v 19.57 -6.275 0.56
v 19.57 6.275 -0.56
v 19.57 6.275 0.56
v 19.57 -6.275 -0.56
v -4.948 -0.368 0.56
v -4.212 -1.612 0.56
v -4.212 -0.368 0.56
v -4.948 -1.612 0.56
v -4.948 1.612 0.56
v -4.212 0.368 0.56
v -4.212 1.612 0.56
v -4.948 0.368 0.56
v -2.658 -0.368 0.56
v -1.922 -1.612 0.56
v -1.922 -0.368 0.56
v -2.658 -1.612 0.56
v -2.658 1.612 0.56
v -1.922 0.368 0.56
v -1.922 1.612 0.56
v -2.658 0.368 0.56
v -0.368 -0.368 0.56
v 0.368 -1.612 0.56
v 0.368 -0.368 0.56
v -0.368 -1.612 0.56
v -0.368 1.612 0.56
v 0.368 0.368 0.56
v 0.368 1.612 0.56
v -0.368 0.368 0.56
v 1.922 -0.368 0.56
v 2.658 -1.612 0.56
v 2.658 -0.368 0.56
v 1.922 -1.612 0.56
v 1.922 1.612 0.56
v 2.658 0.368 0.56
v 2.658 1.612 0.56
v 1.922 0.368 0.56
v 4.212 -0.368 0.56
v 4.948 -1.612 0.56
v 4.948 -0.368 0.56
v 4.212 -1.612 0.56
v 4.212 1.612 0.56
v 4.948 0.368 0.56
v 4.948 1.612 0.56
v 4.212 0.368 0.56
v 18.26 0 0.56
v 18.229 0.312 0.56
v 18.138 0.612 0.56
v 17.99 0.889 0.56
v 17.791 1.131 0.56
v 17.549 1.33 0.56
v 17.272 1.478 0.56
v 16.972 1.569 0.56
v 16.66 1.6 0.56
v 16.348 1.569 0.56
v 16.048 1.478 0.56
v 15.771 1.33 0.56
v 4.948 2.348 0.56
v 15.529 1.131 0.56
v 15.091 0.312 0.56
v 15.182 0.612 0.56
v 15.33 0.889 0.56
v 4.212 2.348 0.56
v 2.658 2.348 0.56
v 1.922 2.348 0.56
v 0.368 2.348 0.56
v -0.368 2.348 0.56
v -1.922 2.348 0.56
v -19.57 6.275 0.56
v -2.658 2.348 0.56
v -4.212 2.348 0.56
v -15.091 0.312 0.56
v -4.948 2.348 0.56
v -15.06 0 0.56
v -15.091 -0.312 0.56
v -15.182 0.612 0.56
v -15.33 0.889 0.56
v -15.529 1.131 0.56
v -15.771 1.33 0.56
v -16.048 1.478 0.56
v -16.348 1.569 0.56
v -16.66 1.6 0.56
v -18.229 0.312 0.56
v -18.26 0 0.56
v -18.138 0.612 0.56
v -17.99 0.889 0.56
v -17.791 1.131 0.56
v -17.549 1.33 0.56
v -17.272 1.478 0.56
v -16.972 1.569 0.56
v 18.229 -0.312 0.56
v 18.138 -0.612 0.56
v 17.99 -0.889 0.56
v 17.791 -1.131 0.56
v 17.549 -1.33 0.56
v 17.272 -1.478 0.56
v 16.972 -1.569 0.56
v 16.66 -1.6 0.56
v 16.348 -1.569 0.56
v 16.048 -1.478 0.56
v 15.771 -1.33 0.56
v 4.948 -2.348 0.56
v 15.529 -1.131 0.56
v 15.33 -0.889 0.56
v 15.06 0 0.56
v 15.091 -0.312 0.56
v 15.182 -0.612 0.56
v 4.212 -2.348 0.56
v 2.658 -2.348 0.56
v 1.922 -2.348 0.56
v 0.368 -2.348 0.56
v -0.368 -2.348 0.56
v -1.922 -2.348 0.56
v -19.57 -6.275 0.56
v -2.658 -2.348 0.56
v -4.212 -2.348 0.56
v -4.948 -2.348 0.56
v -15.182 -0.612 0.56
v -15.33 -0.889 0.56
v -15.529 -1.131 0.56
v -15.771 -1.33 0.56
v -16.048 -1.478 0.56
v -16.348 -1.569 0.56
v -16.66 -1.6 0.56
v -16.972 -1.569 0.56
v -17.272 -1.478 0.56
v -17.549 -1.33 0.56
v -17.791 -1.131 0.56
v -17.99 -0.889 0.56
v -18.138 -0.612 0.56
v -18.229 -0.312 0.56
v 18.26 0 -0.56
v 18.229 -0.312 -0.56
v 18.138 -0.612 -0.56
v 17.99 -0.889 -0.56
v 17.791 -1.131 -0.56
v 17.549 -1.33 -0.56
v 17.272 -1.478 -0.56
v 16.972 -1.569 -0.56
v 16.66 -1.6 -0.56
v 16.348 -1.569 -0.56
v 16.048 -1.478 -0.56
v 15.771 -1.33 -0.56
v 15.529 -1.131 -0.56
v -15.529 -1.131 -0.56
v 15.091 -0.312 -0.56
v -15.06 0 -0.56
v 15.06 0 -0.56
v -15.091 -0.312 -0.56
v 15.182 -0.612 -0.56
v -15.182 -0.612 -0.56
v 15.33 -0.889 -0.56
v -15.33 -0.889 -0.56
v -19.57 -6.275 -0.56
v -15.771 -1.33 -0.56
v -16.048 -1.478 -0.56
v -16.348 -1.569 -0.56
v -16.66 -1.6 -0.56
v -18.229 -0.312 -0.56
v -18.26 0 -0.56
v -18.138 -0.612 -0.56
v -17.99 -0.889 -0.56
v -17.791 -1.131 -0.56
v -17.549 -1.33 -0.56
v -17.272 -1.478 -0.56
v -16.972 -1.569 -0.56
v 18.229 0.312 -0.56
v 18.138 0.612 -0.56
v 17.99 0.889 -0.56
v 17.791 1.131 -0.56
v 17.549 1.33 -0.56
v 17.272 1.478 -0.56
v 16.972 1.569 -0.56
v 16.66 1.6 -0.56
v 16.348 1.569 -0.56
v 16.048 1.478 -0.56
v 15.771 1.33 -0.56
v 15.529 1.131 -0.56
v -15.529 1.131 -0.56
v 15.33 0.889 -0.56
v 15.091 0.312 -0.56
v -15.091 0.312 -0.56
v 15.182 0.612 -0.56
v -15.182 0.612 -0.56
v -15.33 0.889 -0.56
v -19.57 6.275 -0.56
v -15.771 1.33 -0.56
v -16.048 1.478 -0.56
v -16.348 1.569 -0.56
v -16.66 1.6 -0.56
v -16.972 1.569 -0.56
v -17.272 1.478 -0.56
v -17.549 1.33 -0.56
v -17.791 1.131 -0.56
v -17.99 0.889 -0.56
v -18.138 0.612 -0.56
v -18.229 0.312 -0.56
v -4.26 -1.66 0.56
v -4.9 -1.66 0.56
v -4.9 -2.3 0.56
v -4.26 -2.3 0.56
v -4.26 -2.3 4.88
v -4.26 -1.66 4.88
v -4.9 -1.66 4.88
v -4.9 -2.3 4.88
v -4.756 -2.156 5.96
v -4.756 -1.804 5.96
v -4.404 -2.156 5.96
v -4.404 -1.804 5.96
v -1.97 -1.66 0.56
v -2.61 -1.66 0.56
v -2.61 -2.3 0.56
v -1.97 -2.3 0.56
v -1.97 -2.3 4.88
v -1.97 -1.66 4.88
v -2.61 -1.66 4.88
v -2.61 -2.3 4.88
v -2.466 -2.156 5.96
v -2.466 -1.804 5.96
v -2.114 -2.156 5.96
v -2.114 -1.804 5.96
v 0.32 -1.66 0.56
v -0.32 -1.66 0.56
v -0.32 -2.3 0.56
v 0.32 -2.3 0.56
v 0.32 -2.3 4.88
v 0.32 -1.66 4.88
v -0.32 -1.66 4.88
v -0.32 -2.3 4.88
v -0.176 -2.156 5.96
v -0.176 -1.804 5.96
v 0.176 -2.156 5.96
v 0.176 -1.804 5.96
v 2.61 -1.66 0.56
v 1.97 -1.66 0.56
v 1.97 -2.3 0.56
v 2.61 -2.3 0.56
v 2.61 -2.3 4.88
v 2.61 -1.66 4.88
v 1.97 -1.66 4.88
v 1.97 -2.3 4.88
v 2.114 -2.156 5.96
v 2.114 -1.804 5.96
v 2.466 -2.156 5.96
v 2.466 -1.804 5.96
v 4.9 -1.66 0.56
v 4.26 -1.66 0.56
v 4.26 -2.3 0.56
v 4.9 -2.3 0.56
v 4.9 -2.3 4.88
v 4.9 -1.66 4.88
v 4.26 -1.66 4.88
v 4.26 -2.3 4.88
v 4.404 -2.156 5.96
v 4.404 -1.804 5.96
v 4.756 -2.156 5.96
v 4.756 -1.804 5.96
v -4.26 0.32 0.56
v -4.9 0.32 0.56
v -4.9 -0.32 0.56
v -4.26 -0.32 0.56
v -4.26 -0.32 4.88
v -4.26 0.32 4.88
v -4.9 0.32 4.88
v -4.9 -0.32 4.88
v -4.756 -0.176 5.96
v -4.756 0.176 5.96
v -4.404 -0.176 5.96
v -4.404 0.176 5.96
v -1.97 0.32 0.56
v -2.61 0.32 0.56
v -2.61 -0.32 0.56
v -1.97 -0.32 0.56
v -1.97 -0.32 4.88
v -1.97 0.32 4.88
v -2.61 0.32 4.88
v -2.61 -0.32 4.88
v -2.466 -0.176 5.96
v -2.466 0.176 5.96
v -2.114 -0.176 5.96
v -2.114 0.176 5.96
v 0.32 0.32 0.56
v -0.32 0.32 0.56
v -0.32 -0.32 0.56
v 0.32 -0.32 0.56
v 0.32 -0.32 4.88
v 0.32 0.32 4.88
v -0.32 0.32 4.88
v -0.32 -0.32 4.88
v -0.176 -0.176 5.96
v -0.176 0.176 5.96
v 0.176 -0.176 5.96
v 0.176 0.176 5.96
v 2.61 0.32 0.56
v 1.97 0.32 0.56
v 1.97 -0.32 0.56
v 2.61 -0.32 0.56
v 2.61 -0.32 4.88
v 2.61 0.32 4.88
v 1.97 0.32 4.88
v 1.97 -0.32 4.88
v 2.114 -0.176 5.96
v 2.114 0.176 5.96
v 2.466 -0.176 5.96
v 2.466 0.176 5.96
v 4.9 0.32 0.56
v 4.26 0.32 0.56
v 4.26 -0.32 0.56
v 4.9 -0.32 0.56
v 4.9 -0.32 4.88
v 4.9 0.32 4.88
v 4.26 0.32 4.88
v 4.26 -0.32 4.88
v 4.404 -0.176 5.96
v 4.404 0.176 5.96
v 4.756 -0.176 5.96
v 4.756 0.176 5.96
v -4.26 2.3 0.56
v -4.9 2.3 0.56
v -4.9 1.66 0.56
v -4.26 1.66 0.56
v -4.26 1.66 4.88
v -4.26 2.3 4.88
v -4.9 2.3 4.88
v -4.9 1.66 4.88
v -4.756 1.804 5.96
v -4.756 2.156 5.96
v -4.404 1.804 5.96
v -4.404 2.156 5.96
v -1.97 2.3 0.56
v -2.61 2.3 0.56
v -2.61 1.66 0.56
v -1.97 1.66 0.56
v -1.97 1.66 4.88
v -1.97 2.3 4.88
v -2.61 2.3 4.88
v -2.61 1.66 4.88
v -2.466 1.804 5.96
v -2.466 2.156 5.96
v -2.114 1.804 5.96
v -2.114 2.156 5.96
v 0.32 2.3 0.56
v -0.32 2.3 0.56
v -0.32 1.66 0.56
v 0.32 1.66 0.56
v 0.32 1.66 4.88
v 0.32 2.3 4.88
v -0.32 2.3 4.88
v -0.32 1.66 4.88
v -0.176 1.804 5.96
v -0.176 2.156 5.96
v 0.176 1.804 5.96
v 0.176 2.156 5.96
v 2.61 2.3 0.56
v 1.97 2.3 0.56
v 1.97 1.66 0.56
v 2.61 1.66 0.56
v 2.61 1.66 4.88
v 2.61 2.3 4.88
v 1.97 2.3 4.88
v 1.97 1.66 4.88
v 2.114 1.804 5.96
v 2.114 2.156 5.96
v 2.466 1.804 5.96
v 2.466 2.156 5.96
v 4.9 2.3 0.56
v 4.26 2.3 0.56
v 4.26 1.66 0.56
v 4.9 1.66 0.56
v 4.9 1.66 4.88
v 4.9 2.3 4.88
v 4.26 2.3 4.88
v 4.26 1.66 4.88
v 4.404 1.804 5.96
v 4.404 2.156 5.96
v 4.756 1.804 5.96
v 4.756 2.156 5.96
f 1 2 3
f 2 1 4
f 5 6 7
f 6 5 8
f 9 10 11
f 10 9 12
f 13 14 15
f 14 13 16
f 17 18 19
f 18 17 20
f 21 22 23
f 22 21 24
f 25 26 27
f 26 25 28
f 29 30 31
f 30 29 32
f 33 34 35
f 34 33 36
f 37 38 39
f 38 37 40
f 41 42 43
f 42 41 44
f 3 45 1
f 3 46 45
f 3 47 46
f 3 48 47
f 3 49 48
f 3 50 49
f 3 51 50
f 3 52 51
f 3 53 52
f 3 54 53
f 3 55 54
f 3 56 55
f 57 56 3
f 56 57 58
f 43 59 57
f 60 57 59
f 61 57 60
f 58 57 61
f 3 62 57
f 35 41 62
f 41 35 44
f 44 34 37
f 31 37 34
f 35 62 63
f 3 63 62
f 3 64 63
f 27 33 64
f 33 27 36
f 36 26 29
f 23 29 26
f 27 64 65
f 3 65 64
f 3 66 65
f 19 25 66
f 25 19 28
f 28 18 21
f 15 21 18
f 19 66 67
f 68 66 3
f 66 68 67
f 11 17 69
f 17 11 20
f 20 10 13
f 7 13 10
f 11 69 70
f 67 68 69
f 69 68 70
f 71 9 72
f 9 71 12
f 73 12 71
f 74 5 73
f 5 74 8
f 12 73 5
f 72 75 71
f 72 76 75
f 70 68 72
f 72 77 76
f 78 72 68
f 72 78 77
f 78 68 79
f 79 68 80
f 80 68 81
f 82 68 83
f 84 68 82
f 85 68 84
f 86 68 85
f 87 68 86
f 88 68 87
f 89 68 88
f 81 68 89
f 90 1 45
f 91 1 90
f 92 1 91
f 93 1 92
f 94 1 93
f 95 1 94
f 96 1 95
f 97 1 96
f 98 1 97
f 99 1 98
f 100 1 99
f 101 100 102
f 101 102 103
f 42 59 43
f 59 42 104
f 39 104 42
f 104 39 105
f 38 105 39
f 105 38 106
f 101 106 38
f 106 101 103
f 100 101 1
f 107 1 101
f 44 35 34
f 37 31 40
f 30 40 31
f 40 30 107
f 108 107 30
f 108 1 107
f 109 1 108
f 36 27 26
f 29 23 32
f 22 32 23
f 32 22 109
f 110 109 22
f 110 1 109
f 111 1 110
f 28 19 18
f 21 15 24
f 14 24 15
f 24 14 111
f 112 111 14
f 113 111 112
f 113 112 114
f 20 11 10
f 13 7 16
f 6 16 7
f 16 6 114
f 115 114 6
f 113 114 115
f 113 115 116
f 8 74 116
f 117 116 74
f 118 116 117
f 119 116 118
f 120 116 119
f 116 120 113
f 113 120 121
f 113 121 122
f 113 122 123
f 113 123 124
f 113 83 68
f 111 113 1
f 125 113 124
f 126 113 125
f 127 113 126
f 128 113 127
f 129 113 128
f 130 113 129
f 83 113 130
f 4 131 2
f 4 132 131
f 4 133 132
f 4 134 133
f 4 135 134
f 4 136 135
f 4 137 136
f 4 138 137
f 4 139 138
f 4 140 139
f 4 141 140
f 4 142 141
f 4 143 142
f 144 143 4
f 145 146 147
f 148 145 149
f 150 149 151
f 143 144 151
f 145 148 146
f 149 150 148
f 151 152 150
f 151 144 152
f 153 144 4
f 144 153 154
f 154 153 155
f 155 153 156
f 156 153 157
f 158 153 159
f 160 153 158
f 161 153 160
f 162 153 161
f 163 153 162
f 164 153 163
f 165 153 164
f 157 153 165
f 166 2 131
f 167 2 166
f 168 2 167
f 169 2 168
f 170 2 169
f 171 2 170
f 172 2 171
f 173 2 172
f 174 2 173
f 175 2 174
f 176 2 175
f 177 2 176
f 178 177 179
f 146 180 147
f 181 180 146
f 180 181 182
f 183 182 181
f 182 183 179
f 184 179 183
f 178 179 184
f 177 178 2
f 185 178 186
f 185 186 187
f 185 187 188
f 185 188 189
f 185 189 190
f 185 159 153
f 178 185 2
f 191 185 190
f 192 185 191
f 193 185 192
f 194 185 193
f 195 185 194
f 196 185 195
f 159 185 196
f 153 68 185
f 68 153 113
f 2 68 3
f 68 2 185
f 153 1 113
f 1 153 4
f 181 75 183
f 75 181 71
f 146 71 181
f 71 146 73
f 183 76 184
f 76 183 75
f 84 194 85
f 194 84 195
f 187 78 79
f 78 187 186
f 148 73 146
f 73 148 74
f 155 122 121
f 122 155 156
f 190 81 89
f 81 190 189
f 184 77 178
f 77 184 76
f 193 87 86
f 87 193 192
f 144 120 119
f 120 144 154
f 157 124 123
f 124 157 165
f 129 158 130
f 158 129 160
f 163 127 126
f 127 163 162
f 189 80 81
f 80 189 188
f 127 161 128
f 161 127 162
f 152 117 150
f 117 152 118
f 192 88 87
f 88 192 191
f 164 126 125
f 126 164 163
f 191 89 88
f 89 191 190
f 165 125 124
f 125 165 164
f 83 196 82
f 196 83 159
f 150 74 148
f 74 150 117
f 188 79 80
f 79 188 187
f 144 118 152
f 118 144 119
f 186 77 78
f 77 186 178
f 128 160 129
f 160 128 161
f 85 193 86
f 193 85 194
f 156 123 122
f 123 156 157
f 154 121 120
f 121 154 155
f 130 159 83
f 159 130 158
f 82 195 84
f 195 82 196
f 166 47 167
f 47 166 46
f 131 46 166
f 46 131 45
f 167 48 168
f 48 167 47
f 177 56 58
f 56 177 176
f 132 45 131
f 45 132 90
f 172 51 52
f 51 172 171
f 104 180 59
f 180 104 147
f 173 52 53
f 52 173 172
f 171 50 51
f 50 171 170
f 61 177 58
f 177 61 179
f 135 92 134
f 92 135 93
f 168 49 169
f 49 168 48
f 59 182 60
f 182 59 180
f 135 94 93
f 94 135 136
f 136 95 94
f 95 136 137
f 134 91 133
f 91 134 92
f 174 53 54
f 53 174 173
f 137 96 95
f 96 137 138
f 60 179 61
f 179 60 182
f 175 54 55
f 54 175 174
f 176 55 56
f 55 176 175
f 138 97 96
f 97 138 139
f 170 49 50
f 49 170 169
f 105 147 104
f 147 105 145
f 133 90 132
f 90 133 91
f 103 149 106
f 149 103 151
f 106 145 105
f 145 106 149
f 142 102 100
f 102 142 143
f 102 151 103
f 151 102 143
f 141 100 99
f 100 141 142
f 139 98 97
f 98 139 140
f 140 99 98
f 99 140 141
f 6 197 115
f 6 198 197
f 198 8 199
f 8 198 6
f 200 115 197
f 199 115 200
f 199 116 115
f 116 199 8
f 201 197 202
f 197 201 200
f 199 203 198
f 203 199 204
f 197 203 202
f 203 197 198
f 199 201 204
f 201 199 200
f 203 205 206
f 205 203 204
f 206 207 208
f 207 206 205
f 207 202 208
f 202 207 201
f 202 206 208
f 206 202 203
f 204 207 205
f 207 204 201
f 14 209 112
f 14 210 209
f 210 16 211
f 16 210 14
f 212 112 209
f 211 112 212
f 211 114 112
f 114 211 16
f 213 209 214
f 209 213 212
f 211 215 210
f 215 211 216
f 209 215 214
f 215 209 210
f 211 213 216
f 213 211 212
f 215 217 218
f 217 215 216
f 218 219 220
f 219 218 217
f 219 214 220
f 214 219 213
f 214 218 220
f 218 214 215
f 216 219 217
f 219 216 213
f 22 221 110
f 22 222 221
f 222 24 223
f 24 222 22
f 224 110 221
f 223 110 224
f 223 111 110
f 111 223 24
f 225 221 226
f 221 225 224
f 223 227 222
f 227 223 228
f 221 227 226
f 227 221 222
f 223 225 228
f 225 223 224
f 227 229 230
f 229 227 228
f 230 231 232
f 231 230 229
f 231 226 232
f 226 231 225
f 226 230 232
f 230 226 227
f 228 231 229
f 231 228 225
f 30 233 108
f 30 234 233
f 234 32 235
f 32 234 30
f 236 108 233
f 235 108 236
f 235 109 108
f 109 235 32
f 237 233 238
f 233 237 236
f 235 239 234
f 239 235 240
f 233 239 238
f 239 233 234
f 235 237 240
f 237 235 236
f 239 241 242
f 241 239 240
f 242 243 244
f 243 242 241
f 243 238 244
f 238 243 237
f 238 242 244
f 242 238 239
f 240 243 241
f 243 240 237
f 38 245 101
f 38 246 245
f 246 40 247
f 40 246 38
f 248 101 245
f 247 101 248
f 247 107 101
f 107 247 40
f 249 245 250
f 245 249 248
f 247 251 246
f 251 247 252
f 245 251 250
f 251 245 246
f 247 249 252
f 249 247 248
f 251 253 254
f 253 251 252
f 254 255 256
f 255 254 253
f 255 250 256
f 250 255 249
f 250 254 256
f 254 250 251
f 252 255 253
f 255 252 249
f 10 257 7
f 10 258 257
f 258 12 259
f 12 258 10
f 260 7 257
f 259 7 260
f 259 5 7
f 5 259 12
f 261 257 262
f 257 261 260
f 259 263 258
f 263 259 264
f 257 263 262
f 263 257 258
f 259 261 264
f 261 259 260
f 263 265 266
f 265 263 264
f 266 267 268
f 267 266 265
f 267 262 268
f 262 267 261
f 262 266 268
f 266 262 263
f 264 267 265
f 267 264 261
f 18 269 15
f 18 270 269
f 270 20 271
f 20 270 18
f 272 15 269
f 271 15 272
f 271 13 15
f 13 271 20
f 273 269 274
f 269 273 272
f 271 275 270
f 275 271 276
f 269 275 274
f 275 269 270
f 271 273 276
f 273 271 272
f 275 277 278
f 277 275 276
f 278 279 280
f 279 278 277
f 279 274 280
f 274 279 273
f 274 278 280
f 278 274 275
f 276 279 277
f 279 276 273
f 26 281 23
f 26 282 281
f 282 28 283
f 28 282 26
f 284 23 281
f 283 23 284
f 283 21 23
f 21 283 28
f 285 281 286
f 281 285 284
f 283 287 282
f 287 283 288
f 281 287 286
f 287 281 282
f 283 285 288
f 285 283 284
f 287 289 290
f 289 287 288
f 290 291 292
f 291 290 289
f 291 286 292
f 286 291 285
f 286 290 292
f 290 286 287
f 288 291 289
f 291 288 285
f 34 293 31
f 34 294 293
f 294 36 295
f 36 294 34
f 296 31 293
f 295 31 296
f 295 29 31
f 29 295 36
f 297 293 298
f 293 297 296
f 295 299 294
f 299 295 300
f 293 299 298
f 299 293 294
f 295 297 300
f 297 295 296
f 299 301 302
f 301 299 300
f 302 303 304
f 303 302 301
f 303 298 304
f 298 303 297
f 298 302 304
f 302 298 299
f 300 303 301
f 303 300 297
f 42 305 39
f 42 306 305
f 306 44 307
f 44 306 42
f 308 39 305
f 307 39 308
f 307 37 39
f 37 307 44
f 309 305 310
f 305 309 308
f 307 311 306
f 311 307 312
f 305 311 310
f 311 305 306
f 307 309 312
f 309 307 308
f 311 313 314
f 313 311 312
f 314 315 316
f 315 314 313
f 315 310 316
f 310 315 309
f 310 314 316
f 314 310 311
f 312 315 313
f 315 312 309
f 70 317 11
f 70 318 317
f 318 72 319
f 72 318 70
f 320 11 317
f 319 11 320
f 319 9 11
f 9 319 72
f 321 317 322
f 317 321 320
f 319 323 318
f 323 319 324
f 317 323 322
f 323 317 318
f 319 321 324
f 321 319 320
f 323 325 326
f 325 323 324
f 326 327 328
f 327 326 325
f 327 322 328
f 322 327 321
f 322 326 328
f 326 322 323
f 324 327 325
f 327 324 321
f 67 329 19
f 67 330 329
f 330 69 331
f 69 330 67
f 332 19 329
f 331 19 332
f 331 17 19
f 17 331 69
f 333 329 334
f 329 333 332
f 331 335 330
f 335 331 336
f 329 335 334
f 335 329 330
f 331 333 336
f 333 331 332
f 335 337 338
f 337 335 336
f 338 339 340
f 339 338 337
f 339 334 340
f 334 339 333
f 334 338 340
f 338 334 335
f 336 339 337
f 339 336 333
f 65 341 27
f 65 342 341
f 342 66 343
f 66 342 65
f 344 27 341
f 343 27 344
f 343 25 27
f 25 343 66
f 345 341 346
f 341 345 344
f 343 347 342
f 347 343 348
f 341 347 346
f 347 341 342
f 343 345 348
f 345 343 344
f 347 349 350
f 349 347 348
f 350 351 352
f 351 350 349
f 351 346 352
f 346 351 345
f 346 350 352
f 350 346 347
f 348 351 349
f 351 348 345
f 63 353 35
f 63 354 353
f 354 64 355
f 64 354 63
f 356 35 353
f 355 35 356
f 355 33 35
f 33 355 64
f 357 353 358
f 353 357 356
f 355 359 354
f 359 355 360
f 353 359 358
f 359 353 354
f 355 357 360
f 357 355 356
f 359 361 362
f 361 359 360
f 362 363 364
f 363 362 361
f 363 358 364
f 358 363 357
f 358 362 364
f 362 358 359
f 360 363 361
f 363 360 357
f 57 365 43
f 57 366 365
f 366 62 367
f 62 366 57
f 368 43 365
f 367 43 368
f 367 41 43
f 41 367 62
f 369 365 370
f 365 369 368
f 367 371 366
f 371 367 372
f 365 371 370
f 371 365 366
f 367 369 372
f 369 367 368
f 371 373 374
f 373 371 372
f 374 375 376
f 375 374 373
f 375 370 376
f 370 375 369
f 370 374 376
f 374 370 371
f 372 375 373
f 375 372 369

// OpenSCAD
// Parameters (mm)
primary_dimension = 39.14; //[19.57:78.28:0.01]
flange_width_mm = 39.14; //[19.57:78.28:0.01]
flange_height_mm = 12.55; //[6.275:25.1:0.01]
flange_thickness_mm = 1.12; //[0.56:2.24:0.01]
mounting_hole_pitch_mm = 33.32; //[16.66:66.64:0.01]
mounting_hole_diameter_mm = 3.2; //[1.6:6.4:0.01]
pin_pitch_mm = 2.29; //[1.145:4.58:0.01]
row_pitch_mm = 1.98; //[0.99:3.96:0.01]
pin_length_mm = 6; //[3:12:0.01]
pin_width_mm = 0.64; //[0.32:1.28:0.01]
edge_margin_mm = 2; //[1:4:0.01]
overlap_mm = 0.6; //[0.2:1.2:0.01]
hole_clearance_z_mm = 0.4; //[0.1:1:0.01]

// Quality
$fn=32;

// ---------- Helpers ----------
module rounded_rect_2d(w, h, r) {
  r2 = min(r, min(w, h)/2);
  hull() {
    translate([ w/2 - r2,  h/2 - r2]) circle(r=r2);
    translate([-w/2 + r2,  h/2 - r2]) circle(r=r2);
    translate([ w/2 - r2, -h/2 + r2]) circle(r=r2);
    translate([-w/2 + r2, -h/2 + r2]) circle(r=r2);
  }
}

// ---------- [MANDATORY] Detailed Pin Geometry ----------
module pin(len=pin_length_mm, w=pin_width_mm) {
  // Realistic "square post" pin with slight taper tip and small shoulder at base.
  // Oriented along +Z, centered at origin (matches plan's centered box usage).
  color([0.85, 0.72, 0.25]) { // gold/brass-like
    shoulder_h = max(0.25, min(0.6, len*0.12));
    tip_h      = max(0.35, min(1.2, len*0.18));
    body_h     = max(0.01, len - shoulder_h - tip_h);

    // Base shoulder (slightly wider)
    translate([0,0,-len/2 + shoulder_h/2])
      cube([w*1.15, w*1.15, shoulder_h], center=true);

    // Main square post
    translate([0,0,-len/2 + shoulder_h + body_h/2])
      cube([w, w, body_h], center=true);

    // Tapered/chamfered tip (square-to-smaller-square frustum)
    translate([0,0, len/2 - tip_h/2])
      linear_extrude(height=tip_h, center=true, scale=0.55)
        square([w, w], center=true);

    // Tiny end nub to catch highlights
    translate([0,0, len/2 - 0.12])
      cylinder(d=max(0.12, w*0.35), h=0.24, center=true, $fn=24);
  }
}

// ---------- Base Shapes from Plan ----------
module flange_plate() {
  color([0.75, 0.75, 0.77]) // aluminum/silver
    cube([flange_width_mm, flange_height_mm, flange_thickness_mm], center=true);
}

module mounting_hole_cyl() {
  cylinder(
    h = flange_thickness_mm + 2*hole_clearance_z_mm,
    r = mounting_hole_diameter_mm/2,
    center = true,
    $fn=32
  );
}

// ---------- Operations / Assembly ----------
module assembly() {
  // flange_with_holes = difference(flange_plate, mounting_holes_pair)
  union() {
    // Flange with holes
    difference() {
      flange_plate();

      // mounting_holes_pair = union(left, right)
      translate([-mounting_hole_pitch_mm/2, 0, 0]) mounting_hole_cyl();
      translate([ mounting_hole_pitch_mm/2, 0, 0]) mounting_hole_cyl();
    }

    // pin_array_15_positioned
    translate([0, 0, flange_thickness_mm/2 + pin_length_mm/2 - overlap_mm]) {
      // 15 pins in 3 rows x 5 columns, centered about origin
      // (Plan described "simplified 15-pin (3x5) header-style pin field")
      for (row = [0:2]) {
        for (col = [0:4]) {
          x = (col - 2) * pin_pitch_mm;
          y = (row - 1) * row_pitch_mm;
          translate([x, y, 0]) pin();
        }
      }
    }
  }
}

assembly();
